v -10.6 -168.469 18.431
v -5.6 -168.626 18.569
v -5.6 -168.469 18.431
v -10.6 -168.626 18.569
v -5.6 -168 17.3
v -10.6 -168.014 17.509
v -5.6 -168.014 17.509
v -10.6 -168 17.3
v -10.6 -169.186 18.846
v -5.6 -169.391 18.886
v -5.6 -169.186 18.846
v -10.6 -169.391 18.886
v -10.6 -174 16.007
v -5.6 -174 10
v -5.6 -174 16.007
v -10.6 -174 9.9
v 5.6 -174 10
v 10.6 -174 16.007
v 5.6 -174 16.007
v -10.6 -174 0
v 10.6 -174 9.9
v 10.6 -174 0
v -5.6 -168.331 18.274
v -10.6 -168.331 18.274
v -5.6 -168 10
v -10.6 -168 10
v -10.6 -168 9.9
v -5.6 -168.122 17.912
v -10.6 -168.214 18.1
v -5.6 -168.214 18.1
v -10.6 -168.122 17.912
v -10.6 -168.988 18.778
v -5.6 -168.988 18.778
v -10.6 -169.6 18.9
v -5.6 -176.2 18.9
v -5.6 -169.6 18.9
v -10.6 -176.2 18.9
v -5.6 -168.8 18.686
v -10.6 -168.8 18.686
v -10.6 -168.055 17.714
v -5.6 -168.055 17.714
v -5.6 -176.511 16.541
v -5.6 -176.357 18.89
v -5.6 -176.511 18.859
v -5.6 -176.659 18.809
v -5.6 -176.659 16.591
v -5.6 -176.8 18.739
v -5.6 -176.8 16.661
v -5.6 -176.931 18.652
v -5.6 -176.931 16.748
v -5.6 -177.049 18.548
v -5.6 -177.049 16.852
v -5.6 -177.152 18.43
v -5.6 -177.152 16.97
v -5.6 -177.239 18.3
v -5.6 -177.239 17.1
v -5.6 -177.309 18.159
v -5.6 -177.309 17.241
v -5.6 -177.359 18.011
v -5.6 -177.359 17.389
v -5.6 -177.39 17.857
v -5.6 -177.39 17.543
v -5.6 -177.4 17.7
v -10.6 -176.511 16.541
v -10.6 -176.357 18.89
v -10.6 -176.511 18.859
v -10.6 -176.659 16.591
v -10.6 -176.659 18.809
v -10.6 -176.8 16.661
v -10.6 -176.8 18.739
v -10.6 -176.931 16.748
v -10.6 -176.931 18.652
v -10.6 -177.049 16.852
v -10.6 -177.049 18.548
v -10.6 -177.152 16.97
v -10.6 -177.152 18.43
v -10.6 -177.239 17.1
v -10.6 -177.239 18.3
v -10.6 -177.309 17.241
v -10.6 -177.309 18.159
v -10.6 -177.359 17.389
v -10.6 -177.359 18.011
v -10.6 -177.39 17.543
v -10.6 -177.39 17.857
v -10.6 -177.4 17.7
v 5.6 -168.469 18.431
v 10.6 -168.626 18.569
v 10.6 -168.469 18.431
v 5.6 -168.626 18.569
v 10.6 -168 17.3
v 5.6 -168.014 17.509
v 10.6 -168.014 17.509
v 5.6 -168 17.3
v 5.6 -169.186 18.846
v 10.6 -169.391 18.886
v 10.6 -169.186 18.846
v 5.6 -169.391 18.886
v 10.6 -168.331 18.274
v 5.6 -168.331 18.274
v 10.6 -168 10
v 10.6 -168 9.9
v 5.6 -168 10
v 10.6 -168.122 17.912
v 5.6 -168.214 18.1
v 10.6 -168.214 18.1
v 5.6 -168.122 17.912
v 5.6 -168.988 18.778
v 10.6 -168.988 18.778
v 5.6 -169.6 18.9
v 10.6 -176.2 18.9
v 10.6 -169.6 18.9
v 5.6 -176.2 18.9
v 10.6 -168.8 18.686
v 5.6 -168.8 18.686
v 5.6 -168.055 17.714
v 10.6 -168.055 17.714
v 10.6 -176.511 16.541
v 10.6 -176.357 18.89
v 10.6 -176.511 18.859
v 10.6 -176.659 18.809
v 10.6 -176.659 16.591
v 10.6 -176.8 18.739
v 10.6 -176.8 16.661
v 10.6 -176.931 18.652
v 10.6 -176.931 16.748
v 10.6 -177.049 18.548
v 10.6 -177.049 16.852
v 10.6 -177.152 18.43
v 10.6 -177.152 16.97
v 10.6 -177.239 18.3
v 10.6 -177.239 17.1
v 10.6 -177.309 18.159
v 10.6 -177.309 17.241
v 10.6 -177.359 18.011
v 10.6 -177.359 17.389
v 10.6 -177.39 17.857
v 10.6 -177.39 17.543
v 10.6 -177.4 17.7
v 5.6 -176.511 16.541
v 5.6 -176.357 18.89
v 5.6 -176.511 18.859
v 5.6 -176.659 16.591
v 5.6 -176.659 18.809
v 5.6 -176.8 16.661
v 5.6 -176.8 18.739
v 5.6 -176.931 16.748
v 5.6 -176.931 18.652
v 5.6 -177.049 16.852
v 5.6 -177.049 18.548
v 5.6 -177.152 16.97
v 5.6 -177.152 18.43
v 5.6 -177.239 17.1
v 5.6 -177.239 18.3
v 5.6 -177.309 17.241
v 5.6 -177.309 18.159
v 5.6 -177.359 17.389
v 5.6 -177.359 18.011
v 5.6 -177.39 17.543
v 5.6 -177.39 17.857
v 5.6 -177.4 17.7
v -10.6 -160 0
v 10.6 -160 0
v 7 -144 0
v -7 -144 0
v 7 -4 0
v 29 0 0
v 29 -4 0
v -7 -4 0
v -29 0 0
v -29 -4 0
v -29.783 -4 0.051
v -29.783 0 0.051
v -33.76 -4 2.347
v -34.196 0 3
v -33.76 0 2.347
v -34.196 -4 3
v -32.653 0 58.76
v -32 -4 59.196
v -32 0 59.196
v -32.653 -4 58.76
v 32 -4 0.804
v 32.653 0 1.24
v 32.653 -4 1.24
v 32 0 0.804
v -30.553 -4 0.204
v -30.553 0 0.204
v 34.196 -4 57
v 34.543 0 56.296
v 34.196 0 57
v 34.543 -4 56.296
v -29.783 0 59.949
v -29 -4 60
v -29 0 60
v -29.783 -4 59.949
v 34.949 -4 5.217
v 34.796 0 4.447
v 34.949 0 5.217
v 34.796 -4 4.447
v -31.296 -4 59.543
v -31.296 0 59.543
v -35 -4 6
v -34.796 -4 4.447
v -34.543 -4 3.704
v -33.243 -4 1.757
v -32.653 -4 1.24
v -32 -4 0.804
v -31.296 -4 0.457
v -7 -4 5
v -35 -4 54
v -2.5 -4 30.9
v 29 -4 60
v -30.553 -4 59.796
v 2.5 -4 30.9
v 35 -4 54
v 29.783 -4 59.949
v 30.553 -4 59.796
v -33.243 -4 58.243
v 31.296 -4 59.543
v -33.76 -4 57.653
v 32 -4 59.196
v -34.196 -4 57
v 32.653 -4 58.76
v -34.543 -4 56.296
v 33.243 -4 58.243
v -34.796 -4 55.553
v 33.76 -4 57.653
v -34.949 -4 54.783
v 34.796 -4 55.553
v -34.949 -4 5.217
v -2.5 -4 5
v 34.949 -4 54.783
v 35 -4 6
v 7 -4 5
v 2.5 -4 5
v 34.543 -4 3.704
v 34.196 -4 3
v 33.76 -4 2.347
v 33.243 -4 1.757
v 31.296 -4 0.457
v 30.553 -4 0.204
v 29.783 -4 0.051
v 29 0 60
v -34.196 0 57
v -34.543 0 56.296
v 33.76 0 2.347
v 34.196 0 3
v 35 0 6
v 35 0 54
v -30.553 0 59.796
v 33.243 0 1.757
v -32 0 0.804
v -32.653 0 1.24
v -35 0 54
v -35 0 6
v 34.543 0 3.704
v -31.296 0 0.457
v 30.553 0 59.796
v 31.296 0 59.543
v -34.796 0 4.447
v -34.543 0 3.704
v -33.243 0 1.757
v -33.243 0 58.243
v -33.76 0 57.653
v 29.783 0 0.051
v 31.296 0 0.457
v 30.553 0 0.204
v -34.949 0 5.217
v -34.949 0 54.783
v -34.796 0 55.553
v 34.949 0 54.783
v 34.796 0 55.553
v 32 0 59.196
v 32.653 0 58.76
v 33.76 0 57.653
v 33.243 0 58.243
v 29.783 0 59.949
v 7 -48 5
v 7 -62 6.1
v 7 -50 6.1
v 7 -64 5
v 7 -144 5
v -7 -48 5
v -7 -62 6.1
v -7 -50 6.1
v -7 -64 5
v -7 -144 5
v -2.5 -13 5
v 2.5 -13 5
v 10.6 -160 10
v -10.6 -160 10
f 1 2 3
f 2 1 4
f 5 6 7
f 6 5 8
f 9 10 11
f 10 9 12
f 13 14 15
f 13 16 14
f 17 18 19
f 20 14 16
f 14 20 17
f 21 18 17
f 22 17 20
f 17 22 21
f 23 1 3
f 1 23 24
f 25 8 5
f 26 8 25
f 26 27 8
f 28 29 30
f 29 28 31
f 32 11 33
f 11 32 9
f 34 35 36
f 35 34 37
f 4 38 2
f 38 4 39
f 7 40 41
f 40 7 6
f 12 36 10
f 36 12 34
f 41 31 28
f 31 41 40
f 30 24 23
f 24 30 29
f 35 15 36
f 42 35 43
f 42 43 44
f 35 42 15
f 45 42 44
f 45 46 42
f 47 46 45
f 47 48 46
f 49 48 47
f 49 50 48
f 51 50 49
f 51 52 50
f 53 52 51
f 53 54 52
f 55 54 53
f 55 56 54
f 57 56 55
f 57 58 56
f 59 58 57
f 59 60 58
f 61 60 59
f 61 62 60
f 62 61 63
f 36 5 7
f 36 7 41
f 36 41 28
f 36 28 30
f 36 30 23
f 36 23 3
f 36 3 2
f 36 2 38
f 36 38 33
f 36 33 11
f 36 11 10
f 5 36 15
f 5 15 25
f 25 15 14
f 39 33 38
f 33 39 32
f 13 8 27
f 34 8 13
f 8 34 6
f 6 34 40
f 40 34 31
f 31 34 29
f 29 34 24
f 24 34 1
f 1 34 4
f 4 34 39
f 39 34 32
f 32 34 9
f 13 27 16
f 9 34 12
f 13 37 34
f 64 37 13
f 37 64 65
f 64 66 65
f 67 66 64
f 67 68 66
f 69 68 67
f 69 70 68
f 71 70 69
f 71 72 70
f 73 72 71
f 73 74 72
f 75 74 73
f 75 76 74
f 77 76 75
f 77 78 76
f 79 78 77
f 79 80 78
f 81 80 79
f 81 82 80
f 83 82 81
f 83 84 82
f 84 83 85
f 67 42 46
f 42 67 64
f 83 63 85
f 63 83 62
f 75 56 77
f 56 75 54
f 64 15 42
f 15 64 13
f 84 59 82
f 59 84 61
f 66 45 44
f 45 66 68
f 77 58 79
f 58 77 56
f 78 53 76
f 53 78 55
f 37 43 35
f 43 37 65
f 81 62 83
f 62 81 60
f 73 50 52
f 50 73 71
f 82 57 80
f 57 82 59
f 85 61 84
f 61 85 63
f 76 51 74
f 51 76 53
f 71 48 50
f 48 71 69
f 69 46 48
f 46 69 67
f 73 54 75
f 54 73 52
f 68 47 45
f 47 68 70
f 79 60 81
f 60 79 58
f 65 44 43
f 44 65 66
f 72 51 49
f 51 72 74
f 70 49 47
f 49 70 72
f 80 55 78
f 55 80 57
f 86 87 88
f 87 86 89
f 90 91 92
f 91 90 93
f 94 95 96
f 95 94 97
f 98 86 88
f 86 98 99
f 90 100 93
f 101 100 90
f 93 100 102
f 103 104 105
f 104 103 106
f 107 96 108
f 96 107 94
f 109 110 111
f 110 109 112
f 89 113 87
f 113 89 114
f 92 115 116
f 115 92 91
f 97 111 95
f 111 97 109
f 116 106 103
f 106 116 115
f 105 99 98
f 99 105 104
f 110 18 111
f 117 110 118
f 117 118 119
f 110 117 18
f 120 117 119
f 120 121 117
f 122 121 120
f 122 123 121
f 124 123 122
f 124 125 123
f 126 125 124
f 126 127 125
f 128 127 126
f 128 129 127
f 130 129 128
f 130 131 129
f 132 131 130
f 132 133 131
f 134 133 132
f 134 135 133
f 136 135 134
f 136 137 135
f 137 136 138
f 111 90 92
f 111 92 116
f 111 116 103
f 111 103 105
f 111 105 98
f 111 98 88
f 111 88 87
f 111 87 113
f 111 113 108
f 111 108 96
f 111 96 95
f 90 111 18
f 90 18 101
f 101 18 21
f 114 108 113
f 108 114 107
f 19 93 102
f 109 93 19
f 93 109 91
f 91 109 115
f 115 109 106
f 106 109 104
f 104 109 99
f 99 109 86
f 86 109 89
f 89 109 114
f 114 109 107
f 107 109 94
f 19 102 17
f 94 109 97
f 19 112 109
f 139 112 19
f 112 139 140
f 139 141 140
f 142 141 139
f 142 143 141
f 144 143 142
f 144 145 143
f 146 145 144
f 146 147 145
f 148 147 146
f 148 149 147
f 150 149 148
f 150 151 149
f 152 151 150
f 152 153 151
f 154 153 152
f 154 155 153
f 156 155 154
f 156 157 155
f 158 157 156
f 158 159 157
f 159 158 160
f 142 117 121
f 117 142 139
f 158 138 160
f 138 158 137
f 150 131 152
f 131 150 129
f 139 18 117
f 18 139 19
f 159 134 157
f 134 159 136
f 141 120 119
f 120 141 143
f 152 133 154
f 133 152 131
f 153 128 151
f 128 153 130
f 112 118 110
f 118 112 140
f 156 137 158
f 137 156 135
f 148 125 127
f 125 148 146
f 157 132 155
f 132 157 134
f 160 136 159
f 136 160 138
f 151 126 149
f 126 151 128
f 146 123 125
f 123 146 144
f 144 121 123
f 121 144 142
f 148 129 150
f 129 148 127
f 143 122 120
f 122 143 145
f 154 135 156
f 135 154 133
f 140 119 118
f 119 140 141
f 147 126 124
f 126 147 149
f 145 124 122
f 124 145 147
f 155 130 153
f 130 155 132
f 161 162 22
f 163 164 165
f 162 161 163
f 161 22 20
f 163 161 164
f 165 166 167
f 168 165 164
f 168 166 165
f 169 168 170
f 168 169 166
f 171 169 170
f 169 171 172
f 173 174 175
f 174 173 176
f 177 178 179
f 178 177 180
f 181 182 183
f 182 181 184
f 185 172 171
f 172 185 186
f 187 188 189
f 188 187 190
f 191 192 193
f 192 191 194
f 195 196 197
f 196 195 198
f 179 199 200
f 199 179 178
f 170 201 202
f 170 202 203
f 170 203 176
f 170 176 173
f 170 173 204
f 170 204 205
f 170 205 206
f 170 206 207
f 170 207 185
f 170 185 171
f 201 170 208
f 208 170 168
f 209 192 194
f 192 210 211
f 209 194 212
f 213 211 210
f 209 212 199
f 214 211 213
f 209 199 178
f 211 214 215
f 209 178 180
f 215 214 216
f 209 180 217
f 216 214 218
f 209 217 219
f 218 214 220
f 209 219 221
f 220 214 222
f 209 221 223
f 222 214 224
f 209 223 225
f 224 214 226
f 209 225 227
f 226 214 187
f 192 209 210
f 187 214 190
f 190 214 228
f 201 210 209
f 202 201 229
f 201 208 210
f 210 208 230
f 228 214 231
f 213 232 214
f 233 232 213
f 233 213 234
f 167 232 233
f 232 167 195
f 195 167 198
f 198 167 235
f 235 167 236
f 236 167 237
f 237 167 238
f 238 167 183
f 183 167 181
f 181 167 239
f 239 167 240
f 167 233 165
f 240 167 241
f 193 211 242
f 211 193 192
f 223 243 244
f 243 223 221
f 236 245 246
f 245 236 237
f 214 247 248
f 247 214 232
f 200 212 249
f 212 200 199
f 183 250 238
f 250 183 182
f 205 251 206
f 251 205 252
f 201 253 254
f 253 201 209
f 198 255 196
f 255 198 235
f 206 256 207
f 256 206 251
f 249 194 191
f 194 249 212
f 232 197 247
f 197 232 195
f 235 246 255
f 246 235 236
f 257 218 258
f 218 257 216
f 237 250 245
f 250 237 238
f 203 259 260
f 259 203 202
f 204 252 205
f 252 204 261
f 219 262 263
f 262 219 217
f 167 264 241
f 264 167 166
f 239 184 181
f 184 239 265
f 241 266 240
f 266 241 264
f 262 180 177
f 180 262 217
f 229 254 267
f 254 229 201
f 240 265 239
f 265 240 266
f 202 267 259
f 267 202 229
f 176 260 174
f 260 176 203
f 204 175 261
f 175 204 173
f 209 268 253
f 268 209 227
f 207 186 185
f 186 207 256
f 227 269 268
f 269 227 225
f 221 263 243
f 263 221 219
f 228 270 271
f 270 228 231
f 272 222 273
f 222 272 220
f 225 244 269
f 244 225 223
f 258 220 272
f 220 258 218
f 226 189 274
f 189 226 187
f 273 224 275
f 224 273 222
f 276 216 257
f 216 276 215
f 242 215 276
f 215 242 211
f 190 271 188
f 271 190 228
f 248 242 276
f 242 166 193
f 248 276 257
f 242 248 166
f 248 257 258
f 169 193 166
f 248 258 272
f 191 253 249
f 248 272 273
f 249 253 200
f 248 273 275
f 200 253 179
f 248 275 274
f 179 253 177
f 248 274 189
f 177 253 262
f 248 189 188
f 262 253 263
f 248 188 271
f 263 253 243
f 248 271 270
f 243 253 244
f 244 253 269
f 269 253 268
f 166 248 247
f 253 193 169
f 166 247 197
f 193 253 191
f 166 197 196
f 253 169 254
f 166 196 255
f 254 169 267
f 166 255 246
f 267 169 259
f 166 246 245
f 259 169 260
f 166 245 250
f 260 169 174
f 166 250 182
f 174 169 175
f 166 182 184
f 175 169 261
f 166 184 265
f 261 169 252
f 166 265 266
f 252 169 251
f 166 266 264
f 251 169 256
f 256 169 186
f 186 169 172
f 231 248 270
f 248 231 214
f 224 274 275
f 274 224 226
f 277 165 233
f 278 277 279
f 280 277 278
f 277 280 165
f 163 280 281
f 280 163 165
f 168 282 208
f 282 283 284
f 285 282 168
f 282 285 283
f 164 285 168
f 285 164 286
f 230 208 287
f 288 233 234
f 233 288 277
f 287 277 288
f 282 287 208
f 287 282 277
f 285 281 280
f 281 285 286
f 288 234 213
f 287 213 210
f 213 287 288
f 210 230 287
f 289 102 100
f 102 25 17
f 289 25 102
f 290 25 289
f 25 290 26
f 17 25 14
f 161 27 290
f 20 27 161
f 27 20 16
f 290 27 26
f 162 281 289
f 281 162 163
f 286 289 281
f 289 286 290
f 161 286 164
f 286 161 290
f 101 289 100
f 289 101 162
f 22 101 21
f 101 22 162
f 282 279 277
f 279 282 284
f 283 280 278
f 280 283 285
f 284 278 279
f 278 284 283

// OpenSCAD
// Hänge-Ständer für die 20-cm-Gitarre (modelle/strat_*.stl): Gabel hält die Kopfplatte, Korpus hängt frei.
// Koordinaten „stehend“: X Breite, Y nach vorn, Z hoch. Gedruckt wird liegend auf dem Rücken (siehe unten).
$fn = 48;
liegend     = true;   // true = Druckausrichtung, false = stehend (Vorschau)
// --- Gitarre ---
hals_b      = 10.4;   // Halsbreite am Sattel
sattel_h    = 160;    // Abstand Korpus-Unterkante -> Auflagepunkt der Kopfplatte
kopf_d      = 4.1;    // Dicke der Kopfplatte
// --- Ständer ---
luft_unten  = 10;     // Abstand Gitarre -> Fußplatte
fuss        = [70, 60, 4];
pfosten     = [14, 5];           // Breite, Dicke
spalt       = hals_b + 0.8;      // Gabelöffnung
zinke_b     = 5;                 // Breite je Gabelzinke
abstand     = 5;                 // Klotz vor dem Pfosten (damit der Korpus frei hängt)
zg = fuss[2] + luft_unten + sattel_h;   // Oberkante Gabel
bg = spalt + 2*zinke_b;                 // Gesamtbreite Gabel

module rund(b, t, h, r){ hull() for(x=[-b/2+r, b/2-r], y=[r, t-r]) translate([x, y, 0]) cylinder(r=r, h=h); }
module staender(){
  rund(fuss[0], fuss[1], fuss[2], 6);                                         // Fußplatte
  translate([-pfosten[0]/2, 0, 0]) cube([pfosten[0], pfosten[1], zg]);        // Pfosten
  hull(){ translate([-2.5, pfosten[1]-0.1, fuss[2]-0.1]) cube([5, 26, 0.1]);  // Stützrippe unten
          translate([-2.5, pfosten[1]-0.1, fuss[2]]) cube([5, 0.1, 9]); }
  hull(){ translate([-bg/2, 0, zg-14]) cube([bg, pfosten[1]+abstand, 14]);    // Gabelklotz mit Schräge nach unten
          translate([-pfosten[0]/2, 0, zg-30]) cube([pfosten[0], pfosten[1], 1]); }
  for(s=[-1,1]) translate([s*(spalt/2 + zinke_b/2), 0, 0]) {                  // Zinken + Nase gegen Herausrutschen
    hull(){ translate([-zinke_b/2, pfosten[1]+abstand-0.1, zg-6]) cube([zinke_b, 0.1, 6]);
            translate([0, pfosten[1]+abstand+kopf_d+3.2, zg-1.6]) rotate([0,90,0]) cylinder(r=1.6, h=zinke_b, center=true);
            translate([0, pfosten[1]+abstand+kopf_d+3.2, zg-4.4]) rotate([0,90,0]) cylinder(r=1.6, h=zinke_b, center=true); }
    hull(){ translate([0, pfosten[1]+abstand+kopf_d+3.2, zg-1.6]) rotate([0,90,0]) cylinder(r=1.6, h=zinke_b, center=true);
            translate([0, pfosten[1]+abstand+kopf_d+3.6, zg+2.2]) rotate([0,90,0]) cylinder(r=1.2, h=zinke_b, center=true); }
  }
  translate([-pfosten[0]/2, pfosten[1]-0.1, 48]) hull(){ cube([pfosten[0], 0.1, 16]); translate([0, 1.1, 2]) cube([pfosten[0], 0.1, 12]); }  // Anlage für den Korpus
}
if (liegend) rotate([90, 0, 0]) staender(); else staender();
